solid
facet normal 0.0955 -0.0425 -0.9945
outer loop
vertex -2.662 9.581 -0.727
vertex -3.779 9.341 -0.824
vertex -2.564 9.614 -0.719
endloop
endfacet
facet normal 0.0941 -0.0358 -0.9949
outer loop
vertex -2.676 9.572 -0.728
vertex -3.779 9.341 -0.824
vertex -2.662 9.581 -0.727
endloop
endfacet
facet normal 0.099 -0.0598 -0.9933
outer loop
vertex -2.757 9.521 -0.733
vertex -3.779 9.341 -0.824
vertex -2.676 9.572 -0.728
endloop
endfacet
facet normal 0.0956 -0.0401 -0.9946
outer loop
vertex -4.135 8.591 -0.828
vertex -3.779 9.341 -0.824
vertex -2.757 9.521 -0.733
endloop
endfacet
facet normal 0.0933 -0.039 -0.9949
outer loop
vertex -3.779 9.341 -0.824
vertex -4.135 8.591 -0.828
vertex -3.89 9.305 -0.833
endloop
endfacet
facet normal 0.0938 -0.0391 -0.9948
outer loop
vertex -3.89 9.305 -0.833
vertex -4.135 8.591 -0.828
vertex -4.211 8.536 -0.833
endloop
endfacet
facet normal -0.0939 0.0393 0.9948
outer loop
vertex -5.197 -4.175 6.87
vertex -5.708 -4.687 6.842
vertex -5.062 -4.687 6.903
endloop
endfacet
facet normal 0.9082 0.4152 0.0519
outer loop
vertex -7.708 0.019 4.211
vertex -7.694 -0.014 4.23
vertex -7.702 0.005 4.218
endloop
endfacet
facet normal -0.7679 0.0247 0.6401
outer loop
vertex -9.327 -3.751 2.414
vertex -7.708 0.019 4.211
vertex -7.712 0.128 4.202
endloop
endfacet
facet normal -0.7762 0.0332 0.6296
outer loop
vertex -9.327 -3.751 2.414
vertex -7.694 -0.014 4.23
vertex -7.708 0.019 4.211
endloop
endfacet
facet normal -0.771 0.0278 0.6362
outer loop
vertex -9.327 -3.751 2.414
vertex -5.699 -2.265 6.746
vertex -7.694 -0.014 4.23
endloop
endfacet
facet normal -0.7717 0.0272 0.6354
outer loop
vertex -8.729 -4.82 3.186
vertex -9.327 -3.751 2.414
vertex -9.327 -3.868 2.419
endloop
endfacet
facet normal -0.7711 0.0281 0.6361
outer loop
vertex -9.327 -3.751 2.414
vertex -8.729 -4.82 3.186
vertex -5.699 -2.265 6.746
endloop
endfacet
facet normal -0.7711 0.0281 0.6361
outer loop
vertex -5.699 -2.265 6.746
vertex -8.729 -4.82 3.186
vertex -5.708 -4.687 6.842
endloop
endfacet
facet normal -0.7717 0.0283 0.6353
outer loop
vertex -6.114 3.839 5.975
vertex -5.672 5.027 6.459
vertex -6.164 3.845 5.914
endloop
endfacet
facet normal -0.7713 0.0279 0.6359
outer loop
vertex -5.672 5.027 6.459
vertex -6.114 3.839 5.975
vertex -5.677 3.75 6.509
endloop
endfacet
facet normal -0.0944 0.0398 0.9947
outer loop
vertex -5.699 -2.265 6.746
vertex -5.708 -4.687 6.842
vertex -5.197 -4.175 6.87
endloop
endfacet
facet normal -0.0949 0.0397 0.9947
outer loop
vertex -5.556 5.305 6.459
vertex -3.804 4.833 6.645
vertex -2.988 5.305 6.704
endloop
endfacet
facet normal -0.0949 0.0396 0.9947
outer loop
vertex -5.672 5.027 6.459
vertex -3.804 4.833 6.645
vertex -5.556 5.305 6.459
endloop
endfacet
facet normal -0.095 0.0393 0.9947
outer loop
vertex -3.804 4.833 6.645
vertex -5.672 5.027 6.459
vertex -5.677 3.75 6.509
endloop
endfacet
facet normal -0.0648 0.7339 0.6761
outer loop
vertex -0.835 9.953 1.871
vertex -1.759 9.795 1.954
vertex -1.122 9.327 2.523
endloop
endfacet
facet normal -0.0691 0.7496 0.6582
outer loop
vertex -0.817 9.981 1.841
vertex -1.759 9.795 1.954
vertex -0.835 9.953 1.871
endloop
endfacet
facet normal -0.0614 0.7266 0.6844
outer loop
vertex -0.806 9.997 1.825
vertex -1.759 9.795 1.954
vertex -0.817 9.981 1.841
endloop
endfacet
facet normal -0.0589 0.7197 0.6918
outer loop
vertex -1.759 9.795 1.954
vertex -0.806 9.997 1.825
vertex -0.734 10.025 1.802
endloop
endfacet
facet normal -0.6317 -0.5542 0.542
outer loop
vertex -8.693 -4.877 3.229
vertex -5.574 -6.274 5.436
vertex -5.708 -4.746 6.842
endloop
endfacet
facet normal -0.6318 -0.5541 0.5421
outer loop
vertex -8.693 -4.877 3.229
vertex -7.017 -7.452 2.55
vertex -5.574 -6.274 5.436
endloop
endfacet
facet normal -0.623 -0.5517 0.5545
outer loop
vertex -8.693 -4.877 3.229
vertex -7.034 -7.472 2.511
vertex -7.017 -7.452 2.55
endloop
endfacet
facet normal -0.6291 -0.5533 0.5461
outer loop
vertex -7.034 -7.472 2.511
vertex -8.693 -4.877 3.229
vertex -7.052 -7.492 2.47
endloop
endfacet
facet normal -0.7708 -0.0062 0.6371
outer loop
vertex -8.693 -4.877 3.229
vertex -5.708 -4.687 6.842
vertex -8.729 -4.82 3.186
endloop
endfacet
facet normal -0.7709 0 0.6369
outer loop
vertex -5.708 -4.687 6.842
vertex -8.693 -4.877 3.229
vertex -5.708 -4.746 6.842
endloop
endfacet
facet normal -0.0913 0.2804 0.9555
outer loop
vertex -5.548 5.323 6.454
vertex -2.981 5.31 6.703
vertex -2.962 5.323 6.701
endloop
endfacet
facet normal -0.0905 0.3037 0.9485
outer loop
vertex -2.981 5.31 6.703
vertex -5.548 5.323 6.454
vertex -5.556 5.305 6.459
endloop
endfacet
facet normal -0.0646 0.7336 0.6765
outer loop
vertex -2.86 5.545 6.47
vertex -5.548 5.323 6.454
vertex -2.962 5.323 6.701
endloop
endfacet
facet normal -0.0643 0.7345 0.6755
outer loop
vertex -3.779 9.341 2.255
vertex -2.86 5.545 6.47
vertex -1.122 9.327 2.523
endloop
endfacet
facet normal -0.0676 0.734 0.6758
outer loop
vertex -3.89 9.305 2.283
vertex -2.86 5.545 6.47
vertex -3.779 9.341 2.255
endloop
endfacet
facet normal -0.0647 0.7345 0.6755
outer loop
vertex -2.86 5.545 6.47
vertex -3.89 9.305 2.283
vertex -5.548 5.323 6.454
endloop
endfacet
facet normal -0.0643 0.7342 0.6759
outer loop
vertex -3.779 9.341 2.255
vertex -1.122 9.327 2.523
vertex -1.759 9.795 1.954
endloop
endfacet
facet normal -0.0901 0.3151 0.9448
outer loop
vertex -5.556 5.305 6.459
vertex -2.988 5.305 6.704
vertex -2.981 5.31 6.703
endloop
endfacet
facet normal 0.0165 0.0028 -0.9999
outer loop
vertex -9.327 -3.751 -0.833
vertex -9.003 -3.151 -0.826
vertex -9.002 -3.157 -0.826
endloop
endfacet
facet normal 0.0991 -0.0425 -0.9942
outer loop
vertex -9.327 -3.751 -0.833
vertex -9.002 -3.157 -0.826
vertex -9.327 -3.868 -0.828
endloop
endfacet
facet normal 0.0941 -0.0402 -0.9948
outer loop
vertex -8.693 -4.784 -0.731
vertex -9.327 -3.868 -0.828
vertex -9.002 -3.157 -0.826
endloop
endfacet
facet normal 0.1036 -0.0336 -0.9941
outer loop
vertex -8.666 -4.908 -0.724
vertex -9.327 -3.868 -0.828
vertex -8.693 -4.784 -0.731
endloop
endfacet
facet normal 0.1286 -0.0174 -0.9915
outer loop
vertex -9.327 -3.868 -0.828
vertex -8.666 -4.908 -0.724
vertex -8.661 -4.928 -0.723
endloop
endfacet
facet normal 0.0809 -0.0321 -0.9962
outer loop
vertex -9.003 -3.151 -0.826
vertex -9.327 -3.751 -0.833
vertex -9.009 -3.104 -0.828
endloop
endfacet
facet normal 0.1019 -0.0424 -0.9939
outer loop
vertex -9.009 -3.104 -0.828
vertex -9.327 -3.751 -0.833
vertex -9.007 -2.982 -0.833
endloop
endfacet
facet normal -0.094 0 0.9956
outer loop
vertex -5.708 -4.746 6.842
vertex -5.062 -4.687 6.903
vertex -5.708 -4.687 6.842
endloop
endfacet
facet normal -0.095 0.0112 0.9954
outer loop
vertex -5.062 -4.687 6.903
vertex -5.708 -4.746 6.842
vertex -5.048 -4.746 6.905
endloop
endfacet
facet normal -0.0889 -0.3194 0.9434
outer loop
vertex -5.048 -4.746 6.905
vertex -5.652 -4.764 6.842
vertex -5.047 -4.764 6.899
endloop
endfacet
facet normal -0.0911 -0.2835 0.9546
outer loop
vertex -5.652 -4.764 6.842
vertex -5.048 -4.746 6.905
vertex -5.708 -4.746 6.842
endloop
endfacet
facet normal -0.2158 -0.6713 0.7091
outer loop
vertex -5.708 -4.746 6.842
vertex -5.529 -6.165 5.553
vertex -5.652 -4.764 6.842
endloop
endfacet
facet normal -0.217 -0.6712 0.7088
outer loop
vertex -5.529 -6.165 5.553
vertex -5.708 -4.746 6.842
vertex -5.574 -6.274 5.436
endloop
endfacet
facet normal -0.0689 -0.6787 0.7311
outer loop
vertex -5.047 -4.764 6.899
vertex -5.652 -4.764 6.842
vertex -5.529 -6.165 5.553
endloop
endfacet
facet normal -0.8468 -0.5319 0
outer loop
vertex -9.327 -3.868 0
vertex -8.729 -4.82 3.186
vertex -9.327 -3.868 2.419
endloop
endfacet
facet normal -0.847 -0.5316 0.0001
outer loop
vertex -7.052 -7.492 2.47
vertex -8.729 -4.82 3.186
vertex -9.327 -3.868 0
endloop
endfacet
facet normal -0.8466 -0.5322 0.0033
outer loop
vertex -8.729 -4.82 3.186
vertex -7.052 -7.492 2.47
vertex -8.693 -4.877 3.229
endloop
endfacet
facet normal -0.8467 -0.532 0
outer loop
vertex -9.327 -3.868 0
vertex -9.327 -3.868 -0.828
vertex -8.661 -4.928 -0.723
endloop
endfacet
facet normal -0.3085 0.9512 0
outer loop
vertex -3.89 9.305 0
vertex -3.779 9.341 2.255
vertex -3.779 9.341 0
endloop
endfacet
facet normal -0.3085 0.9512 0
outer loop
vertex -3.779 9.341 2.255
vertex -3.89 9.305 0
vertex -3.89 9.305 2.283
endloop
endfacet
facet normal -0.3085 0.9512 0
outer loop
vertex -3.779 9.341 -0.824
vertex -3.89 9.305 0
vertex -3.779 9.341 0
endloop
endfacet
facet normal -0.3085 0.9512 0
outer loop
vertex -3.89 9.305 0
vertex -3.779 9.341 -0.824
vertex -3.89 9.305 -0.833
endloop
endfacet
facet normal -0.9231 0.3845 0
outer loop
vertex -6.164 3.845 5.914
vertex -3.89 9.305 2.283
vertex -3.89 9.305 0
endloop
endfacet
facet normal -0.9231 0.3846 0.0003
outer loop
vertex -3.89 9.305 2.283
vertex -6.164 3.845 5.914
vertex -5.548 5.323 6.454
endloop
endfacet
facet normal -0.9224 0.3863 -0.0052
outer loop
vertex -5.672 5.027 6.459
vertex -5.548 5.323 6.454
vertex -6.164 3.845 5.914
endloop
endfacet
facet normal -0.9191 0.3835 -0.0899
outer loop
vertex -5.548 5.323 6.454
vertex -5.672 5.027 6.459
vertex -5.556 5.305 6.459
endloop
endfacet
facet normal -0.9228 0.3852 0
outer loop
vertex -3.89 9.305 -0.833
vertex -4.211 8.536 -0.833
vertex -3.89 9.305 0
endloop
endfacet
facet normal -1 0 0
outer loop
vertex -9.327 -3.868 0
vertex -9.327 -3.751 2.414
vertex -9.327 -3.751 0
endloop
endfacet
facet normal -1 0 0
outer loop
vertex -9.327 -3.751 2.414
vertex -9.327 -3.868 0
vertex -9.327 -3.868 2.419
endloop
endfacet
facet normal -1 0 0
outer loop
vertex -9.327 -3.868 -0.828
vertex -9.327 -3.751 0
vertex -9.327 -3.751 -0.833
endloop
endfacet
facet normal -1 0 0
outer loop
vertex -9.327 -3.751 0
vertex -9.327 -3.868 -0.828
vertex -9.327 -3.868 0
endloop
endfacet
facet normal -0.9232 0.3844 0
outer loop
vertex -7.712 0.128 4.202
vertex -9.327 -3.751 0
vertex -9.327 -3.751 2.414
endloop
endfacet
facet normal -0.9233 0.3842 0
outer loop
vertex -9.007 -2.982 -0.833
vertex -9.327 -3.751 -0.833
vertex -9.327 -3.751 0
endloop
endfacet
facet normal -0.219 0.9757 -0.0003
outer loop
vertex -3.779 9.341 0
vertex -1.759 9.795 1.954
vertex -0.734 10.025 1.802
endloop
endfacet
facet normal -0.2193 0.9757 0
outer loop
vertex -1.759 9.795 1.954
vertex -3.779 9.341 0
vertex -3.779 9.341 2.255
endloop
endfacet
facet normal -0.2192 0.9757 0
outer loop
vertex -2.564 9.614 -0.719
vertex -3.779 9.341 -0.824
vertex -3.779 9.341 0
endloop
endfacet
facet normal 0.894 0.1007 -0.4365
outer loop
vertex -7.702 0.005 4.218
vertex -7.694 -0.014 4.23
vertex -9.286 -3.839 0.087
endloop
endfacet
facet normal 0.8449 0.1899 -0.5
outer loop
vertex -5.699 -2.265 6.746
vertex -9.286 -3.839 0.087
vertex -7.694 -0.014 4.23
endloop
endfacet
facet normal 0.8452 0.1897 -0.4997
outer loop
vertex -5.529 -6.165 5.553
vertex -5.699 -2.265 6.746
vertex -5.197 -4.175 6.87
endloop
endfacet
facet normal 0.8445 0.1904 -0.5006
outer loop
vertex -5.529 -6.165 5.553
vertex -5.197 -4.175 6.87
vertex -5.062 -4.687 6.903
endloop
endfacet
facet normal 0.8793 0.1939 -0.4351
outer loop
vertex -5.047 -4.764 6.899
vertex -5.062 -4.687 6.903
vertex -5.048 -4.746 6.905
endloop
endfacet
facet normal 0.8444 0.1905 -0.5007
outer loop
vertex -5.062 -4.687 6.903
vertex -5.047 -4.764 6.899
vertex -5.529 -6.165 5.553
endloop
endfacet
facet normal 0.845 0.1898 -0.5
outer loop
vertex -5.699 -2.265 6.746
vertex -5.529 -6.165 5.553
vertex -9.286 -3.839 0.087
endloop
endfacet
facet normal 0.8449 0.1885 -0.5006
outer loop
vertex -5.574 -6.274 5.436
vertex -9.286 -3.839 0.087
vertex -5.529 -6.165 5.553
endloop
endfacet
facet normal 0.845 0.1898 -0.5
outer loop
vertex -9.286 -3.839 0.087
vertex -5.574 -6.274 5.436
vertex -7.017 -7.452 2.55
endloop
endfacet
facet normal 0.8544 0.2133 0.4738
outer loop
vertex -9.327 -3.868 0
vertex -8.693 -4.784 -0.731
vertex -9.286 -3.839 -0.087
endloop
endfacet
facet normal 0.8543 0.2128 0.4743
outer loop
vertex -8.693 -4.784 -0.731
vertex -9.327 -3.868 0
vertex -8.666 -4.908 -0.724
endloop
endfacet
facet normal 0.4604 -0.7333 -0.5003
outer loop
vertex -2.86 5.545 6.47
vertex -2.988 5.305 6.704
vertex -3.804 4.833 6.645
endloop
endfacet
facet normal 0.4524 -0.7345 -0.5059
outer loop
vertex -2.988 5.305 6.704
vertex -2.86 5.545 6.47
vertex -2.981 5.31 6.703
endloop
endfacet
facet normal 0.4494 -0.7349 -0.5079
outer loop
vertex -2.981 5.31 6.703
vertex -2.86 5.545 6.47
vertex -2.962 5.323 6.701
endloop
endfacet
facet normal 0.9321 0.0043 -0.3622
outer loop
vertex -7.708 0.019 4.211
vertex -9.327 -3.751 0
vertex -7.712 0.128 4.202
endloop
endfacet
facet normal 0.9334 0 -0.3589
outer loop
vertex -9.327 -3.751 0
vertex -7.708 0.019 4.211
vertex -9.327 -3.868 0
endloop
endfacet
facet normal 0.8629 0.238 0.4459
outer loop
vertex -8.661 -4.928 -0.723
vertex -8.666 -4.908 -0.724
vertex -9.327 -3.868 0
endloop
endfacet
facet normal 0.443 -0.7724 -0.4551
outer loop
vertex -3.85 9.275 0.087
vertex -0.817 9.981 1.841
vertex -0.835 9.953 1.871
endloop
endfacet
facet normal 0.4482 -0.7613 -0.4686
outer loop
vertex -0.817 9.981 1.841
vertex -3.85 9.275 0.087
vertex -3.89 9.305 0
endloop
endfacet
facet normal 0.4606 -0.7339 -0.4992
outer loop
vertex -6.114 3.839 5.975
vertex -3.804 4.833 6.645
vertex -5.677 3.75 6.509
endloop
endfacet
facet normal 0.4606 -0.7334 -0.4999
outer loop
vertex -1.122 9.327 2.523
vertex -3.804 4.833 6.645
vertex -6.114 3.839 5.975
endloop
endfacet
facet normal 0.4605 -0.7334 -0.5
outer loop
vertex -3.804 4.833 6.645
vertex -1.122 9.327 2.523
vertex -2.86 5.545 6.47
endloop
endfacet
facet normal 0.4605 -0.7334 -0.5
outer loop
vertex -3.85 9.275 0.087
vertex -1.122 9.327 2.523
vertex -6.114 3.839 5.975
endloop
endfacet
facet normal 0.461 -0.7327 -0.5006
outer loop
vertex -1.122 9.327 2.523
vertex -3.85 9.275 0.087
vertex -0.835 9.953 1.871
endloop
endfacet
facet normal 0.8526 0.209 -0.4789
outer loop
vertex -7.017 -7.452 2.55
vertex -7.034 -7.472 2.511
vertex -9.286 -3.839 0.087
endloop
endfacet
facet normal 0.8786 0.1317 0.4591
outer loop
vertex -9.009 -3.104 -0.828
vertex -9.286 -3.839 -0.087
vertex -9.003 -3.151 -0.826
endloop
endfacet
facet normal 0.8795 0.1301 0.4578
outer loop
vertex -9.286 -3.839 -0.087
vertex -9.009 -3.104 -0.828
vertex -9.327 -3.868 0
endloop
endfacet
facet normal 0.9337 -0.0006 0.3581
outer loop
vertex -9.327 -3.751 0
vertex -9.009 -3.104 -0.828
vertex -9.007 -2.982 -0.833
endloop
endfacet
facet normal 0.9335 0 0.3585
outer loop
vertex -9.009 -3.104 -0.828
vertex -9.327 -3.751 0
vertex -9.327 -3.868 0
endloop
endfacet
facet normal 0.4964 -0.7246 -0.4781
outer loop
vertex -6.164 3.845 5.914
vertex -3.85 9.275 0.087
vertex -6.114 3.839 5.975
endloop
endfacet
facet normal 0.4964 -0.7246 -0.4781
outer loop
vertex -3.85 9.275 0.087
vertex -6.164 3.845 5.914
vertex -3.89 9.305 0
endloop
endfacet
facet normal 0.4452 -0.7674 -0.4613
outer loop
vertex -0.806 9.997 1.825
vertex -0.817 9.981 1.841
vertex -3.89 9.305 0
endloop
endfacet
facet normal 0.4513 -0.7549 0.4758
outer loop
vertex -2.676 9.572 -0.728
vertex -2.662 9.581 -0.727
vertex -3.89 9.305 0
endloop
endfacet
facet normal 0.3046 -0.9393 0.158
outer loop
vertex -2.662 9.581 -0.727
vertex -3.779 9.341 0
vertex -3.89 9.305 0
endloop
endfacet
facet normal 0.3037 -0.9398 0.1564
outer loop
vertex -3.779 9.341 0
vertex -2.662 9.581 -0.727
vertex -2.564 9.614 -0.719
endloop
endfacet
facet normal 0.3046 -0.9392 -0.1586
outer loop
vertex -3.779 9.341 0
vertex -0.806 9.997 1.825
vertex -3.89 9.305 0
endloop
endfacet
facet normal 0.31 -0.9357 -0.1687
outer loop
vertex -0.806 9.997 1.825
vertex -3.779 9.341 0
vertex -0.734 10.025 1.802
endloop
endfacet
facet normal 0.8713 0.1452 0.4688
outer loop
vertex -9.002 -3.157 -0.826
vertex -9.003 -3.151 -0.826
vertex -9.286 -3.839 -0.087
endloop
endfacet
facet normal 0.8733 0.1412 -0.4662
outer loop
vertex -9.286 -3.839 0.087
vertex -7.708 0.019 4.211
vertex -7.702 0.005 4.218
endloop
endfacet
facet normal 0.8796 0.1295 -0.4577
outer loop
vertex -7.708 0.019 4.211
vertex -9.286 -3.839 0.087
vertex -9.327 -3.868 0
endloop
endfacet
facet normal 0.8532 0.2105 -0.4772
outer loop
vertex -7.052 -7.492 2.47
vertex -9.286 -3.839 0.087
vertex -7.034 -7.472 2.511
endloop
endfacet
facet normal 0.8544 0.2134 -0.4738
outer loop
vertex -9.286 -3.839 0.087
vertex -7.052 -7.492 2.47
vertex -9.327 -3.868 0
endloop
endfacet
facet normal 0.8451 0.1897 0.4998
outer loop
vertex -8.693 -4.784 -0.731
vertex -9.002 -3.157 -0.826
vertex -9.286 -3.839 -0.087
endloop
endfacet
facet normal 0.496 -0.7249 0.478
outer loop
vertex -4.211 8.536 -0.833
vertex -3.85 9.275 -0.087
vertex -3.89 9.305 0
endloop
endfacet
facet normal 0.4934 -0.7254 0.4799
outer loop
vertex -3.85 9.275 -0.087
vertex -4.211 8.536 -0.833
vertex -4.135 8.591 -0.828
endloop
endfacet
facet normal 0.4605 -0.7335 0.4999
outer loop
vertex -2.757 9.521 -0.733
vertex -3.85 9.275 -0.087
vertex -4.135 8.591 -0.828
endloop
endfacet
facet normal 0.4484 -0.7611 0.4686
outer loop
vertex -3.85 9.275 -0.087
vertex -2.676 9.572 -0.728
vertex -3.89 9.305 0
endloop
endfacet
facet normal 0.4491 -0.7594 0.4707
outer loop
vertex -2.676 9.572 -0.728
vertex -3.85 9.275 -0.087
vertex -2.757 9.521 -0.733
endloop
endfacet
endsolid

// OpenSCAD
// Auto-generated OpenSCAD file

    inner_points = 10*[[0.4640413965551187, 1.1143484030902198, 0.49999999999999933], [0.19221223995568226, 0.46157822176877006, 1.2071067811865472], [-0.19221223995568226, -0.46157822176877006, -1.2071067811865472], [-0.4640413965551187, -1.1143484030902198, -0.49999999999999933], [0.4640413965551183, 1.1143484030902195, -0.5000000000000007], [-0.19221223995568118, -0.46157822176876906, 1.2071067811865477], [0.19221223995568118, 0.46157822176876906, -1.2071067811865477], [-0.4640413965551183, -1.1143484030902195, 0.5000000000000007], [-0.3809410247220134, 0.9245993379208868, -1.6653345369377348e-16], [-0.6527701813214497, 0.2718291565994371, 0.7071067811865477], [-0.6527701813214505, 0.2718291565994365, -0.7071067811865472], [-0.9245993379208868, -0.38094102472201324, 5.551115123125783e-16]];

    outer_points = 10*[[1.2035201993020799, 0.49960866706726725, 0.09506361475190225], [1.1997598001990037, -0.49960866706726725, 0.134441001202246], [-1.1997598001990037, 0.49960866706726725, -0.134441001202246], [-1.2035201993020799, -0.49960866706726725, -0.09506361475190225], [0.5022747882439678, 1.2061620199129408, -7.479318947997693e-07], [0.4931963817293862, -1.2061620199129408, 0.09506467248733161], [-0.4931963817293862, 1.2061620199129408, -0.09506467248733161], [-0.5022747882439678, -1.2061620199129408, 7.479318947997693e-07], [0.4324480499089029, 0.5275793585592033, 0.7311967618584252], [0.42868765080582694, -0.47163797557533116, 0.770574148308769], [-0.5630231200644511, 0.5275793585592033, 0.6361328373029884], [-0.566783519167527, -0.47163797557533116, 0.6755102237533323]];

    // Convex hull for inner set (I)
    module inner_hull() {
        hull() {
            for (p = inner_points) {
                translate(p) sphere(r=0.1);
            }
        }
    }

    // Convex hull for outer set (O) minus inner hull (O \ I)
    module outer_minus_inner() {
        difference() {
            hull() {
                for (p = outer_points) {
                    translate(p) sphere(r=0.1);
                }
            }
            inner_hull(); // Subtract inner hull
        }
    }

    // Convex hull for outer set (O) minus all translated inner hulls
    module outer_minus_AllTranslationInner() {
        difference() {
            hull() {
                for (p = outer_points) {
                    translate(p) sphere(r=0.1);
                }
            }
            hull() {
                translate([0,0,50]) inner_hull();
                translate([0,0,-50]) inner_hull();
            }; // Subtract translated inner hulls
        }
    }

    // Difference between outer_minus_inner and outer_minus_AllTranslationInner
    module outer_minus_inner_diff() {
        difference() {
            // Outer minus inner
            difference() {
                hull() {
                    for (p = outer_points) {
                        translate(p) sphere(r=0.1);
                    }
                }
                inner_hull();
            }

            // Subtract Outer minus AllTranslationInner
            difference() {
                hull() {
                    for (p = outer_points) {
                        translate(p) sphere(r=0.1);
                    }
                }
                hull() {
                    translate([0,0,50]) inner_hull();
                    translate([0,0,-50]) inner_hull();
                };
            }
        }
    }

    // Rendering all with colors applied
    color([1, 1, 0, 1]) outer_minus_inner_diff(); // Opaque yellow
    
